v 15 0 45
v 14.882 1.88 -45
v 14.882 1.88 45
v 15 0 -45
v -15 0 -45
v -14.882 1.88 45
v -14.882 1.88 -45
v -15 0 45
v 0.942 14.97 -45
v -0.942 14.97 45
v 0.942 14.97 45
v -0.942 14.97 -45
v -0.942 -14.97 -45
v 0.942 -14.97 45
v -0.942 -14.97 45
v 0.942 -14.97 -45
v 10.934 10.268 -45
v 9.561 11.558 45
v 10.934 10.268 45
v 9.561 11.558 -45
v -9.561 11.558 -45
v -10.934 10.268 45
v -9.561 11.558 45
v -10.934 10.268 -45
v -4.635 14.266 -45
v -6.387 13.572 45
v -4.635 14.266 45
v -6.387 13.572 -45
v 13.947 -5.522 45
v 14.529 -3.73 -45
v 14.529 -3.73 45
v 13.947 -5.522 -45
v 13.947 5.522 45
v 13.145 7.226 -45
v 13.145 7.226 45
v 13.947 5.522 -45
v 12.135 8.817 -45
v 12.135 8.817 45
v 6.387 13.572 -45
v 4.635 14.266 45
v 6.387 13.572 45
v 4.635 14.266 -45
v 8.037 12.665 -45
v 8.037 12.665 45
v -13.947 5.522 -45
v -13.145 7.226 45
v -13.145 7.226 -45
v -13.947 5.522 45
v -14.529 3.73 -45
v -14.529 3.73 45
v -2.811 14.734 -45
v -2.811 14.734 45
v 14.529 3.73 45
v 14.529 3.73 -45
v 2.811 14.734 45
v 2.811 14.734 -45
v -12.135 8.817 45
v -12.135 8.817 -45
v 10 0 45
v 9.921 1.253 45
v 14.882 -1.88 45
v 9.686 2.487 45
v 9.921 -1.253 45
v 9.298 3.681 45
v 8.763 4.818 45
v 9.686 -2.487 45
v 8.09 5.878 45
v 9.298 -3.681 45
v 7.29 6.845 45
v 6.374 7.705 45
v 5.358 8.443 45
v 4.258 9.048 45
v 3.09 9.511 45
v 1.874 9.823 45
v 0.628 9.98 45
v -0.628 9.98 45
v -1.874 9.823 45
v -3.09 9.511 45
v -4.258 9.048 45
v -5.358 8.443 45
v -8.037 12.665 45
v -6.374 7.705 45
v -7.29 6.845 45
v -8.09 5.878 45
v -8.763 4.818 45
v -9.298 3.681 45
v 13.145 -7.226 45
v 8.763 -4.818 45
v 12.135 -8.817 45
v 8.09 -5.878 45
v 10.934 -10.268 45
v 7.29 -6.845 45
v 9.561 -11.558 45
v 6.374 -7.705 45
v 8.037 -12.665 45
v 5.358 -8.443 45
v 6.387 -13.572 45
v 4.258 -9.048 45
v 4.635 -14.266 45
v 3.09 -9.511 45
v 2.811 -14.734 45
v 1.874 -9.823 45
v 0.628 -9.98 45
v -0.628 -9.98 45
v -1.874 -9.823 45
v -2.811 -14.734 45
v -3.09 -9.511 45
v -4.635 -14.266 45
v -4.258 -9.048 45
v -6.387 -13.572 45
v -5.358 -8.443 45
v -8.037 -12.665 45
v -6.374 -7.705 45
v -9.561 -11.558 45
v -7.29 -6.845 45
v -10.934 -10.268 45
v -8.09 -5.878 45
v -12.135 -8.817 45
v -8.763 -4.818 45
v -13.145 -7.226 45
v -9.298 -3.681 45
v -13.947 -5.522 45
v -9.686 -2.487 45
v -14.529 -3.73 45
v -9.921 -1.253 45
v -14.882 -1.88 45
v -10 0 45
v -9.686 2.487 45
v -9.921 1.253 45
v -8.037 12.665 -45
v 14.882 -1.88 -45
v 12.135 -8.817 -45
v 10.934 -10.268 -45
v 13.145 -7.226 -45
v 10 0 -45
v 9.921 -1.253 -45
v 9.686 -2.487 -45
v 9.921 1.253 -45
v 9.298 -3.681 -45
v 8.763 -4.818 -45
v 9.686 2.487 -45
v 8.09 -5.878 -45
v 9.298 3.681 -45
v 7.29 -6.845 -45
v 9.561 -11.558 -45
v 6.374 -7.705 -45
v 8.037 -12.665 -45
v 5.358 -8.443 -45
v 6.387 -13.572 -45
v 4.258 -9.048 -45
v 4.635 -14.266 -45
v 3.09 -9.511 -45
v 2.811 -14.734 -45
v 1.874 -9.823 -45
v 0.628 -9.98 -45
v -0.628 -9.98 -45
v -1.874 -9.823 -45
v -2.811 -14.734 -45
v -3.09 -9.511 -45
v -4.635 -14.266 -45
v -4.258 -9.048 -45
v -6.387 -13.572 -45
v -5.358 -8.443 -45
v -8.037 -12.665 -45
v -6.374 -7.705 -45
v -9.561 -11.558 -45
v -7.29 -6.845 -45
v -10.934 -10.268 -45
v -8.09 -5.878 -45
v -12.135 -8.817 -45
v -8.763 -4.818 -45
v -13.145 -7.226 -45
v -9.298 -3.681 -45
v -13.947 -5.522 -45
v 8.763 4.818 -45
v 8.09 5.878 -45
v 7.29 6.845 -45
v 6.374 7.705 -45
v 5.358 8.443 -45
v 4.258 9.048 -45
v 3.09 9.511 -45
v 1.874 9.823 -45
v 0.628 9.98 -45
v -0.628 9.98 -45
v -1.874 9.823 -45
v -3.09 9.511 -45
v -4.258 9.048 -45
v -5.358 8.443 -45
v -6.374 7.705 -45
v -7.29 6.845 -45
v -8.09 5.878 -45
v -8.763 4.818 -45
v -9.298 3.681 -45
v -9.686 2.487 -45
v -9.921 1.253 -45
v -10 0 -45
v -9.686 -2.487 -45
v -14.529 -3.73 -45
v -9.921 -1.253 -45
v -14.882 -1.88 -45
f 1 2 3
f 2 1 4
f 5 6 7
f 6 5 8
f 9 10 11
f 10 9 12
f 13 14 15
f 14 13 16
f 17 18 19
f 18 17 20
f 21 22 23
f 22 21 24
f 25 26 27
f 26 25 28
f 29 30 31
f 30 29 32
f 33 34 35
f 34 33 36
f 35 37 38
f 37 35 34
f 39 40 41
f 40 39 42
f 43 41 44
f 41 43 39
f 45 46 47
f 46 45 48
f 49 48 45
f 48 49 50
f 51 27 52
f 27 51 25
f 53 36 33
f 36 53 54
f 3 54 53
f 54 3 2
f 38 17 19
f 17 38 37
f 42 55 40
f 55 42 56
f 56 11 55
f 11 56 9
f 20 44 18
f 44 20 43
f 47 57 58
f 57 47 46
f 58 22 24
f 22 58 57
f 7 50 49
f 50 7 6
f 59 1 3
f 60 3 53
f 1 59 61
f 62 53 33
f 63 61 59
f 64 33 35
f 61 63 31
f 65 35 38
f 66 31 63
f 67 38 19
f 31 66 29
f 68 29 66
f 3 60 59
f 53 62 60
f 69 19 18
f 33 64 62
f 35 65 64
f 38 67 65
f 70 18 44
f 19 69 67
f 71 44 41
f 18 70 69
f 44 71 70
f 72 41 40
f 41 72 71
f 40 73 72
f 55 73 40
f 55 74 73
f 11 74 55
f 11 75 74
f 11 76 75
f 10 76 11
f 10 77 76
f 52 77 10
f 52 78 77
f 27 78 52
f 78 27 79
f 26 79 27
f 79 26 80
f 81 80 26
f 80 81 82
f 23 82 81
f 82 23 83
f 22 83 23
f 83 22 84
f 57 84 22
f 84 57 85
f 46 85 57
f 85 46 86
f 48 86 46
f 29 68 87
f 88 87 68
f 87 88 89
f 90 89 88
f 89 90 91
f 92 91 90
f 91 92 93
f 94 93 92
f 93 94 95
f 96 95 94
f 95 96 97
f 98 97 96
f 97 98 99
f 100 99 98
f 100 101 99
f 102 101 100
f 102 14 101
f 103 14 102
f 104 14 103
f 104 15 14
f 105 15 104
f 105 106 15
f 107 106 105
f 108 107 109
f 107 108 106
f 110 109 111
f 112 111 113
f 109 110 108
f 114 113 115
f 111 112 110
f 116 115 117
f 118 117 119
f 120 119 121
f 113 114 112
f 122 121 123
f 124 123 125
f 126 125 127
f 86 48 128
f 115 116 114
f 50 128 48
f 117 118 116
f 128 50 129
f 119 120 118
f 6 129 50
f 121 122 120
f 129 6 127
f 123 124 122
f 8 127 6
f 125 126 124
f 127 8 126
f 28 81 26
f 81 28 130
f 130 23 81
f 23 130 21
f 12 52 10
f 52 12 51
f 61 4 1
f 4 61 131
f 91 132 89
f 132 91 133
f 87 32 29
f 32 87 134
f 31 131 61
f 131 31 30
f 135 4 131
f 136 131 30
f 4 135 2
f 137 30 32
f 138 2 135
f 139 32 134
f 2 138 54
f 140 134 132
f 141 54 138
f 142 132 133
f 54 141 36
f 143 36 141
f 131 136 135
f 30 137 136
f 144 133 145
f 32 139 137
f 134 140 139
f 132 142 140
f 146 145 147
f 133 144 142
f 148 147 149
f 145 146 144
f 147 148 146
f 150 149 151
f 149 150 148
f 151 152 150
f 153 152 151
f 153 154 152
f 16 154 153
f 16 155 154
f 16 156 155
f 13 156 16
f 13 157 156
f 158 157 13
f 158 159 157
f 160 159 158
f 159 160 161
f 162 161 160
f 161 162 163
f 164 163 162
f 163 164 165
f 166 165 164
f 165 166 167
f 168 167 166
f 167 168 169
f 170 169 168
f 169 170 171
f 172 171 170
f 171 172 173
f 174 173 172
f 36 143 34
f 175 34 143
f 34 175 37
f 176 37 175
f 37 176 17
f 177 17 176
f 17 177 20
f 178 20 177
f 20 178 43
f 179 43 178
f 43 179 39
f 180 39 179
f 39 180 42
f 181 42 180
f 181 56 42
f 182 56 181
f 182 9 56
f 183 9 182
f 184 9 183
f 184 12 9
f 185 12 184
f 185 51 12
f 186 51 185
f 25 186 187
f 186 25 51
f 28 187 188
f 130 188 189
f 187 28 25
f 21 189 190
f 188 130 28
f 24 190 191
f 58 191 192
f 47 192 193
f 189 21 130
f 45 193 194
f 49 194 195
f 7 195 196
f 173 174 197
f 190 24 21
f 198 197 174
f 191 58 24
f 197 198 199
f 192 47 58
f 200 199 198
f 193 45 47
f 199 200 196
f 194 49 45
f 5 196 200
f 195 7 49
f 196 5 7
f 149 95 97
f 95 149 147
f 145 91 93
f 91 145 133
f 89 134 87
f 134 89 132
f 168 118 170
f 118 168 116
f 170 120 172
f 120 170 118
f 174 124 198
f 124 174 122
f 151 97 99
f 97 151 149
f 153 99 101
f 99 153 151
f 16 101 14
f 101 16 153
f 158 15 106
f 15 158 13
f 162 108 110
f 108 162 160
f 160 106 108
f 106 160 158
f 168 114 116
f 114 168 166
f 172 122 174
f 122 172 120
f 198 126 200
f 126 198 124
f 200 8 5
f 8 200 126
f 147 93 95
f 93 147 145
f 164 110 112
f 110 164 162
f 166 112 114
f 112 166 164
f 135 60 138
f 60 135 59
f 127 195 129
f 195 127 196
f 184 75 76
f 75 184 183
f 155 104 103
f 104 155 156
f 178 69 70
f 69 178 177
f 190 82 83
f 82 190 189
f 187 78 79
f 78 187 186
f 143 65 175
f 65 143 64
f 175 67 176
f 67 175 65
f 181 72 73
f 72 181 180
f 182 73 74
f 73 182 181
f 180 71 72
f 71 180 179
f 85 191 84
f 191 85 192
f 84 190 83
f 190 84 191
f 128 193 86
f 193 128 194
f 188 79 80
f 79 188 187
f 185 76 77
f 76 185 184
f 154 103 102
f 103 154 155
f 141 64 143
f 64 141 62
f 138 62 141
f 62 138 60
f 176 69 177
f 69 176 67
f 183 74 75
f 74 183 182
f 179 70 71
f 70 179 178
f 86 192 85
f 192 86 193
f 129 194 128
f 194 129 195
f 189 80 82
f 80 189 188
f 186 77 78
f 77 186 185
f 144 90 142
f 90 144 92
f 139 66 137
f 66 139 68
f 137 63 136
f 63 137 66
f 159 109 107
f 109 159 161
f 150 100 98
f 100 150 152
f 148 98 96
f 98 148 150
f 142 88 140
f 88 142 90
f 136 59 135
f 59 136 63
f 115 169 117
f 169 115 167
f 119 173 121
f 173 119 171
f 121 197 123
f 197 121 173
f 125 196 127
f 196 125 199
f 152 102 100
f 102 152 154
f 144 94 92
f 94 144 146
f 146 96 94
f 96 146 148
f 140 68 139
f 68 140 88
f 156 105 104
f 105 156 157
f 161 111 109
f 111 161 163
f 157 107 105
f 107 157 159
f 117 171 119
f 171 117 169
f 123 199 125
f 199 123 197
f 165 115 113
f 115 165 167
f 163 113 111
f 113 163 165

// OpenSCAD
$fn = 50;


difference() {
	union() {
		translate(v = [0, 0, -45.0000000000]) {
			cylinder(h = 90, r = 15.0000000000);
		}
	}
	union() {
		translate(v = [0, 0, -100.0000000000]) {
			cylinder(h = 200, r = 10);
		}
	}
}
